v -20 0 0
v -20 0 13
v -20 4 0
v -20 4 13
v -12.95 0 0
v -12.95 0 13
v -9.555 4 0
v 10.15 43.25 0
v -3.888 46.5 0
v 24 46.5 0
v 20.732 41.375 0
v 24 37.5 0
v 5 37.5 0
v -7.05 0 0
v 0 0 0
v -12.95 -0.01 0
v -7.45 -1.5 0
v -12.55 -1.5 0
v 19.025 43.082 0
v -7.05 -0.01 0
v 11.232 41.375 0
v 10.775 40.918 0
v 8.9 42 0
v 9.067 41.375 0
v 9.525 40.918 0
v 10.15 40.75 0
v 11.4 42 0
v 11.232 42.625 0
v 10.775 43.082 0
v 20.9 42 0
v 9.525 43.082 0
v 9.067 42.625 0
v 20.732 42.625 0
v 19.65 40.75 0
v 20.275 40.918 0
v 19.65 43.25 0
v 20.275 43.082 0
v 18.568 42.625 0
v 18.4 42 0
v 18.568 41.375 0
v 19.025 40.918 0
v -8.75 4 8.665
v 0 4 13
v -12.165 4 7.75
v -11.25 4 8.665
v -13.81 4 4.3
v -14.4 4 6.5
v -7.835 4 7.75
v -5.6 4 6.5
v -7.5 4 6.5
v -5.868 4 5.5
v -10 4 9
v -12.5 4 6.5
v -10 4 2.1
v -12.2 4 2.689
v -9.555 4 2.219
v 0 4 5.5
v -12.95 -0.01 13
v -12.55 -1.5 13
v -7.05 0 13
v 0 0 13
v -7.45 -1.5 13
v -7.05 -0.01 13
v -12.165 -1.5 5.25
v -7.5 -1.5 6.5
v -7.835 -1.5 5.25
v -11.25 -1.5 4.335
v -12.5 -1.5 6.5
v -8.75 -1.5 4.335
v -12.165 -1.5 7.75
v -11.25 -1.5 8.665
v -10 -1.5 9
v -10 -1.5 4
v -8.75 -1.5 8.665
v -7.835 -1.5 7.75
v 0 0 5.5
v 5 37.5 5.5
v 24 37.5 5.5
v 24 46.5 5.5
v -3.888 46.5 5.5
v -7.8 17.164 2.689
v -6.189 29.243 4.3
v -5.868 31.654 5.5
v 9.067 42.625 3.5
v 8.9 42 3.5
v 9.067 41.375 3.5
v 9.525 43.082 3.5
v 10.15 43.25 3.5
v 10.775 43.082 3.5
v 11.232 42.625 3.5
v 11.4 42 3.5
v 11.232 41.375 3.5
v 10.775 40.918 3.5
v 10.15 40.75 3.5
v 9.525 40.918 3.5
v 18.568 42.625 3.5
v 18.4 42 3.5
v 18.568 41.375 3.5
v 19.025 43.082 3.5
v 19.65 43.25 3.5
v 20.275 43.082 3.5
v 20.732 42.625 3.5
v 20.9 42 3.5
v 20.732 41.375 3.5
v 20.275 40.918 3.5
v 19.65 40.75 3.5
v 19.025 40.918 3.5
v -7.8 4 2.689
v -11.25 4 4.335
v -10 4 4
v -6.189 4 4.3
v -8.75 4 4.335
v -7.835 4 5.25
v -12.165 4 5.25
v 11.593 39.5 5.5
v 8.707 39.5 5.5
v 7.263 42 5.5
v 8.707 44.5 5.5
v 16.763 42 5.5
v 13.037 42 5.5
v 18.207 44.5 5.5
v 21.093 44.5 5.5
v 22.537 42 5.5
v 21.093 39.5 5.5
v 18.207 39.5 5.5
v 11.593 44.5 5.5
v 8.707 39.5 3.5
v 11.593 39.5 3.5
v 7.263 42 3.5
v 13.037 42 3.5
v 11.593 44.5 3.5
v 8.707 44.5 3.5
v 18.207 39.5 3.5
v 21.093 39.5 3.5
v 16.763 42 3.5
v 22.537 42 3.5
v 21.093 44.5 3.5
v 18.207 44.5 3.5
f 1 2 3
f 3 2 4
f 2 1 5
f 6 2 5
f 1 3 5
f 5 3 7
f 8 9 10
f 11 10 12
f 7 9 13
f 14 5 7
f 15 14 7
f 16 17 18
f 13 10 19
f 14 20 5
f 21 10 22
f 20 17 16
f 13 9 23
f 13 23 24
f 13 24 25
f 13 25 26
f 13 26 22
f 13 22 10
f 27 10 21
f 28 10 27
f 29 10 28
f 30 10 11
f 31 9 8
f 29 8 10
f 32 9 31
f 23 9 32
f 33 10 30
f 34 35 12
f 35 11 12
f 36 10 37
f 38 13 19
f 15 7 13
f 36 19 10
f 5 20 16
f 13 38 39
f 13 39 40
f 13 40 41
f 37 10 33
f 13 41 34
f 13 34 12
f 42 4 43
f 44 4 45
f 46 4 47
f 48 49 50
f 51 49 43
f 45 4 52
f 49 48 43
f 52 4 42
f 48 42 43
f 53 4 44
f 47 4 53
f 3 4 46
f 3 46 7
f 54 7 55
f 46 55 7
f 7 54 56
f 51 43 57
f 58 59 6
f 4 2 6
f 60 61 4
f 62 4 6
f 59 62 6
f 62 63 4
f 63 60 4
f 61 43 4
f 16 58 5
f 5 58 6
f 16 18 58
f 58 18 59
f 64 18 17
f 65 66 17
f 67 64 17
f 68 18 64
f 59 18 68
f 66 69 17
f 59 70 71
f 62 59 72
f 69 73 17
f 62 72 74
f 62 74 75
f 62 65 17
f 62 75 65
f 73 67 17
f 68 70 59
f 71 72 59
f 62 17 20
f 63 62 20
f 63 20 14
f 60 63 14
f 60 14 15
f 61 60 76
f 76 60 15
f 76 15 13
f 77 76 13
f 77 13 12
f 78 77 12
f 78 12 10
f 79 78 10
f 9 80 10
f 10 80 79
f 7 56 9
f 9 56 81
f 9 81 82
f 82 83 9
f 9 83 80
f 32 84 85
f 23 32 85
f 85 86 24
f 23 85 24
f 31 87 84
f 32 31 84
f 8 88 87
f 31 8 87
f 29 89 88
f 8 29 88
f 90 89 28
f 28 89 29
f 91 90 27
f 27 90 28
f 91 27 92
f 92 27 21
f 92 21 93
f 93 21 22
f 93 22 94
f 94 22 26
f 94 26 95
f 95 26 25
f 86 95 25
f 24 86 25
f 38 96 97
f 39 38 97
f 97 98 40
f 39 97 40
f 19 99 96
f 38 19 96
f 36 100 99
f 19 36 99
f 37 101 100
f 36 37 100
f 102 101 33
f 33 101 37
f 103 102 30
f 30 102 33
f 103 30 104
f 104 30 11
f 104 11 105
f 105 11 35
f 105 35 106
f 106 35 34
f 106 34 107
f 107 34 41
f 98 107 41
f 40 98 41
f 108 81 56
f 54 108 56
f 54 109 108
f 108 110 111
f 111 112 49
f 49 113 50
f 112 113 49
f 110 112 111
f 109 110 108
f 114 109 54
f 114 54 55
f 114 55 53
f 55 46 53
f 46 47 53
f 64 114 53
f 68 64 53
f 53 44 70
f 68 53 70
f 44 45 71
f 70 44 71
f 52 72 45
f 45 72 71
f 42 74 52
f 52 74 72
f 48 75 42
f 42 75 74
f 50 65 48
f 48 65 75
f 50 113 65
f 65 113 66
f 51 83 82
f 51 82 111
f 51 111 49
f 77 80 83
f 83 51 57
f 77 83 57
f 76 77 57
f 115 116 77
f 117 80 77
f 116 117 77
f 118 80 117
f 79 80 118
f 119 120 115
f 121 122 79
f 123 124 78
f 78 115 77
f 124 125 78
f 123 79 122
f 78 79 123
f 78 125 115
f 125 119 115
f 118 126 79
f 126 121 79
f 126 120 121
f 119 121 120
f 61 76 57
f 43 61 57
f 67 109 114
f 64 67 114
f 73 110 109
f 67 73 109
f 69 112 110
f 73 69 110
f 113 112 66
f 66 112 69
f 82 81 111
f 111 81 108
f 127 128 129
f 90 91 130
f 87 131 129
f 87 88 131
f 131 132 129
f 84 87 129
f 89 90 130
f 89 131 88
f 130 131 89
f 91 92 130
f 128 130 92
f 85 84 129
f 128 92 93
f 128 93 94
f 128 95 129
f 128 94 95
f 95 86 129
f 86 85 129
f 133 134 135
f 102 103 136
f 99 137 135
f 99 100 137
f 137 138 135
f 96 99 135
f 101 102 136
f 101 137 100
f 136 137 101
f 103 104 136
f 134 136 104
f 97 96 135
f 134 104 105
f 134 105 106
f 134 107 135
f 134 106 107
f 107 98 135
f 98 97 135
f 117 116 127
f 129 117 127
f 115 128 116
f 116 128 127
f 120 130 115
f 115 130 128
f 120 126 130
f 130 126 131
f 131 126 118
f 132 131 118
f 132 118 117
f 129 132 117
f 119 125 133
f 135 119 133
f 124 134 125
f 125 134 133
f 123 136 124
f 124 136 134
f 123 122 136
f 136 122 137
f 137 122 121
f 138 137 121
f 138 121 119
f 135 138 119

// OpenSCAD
// file: ss_3gl13p.scad
//SS-3GL13P microswitch

//the real lever has a bump that isn't depicted here, but the tip of the lever here is where the tip of the bump is on the real switch when the operating point is reached

module ss_3gl13p(){
		difference(){
			union(){
				color("black")
				translate([0,-3.3,0]) cube([19.8,7.7+3.3,6.4]);
				color("silver")
				translate([5.15+15.8,10.7,0]) rotate([0,0,-170]) cube([20,1,6.4]);
			}
			translate([5.15,0,0])
			cylinder(r=2.3/2, h=100, center=true);
			translate([5.15+9.5,0,0])
			cylinder(r=2.3/2, h=100, center=true);
		}
	}

}
// main file
use<ss_3gl13p.scad>



module nut(w, h){
	translate([0,0,h/2])
	for (i=[1:3])
		rotate([0,0,60*i])
		cube([w, w/sqrt(3), h], center=true);

}

module	zendstop(color="blue", switch=0){
$fn=12;

switch_offset_side=5;
switch_offset_height=23+15+27-16-7;

thickness=4;
extrusion_pad_width=13;
extrusion_pad_ridge_depth=1.5;
extrusion_pad_ridge_width=5.9;

strut_thickness=10;
strut_width=5.5;

switch_backing_width=19;
switch_backing_height=9;

switch_hole_dia=2.5;
nuttrap_depth = 2;
nuttrap_flats = 5;

	if(switch)
		translate([switch_offset_side,switch_offset_height,strut_width])
		ss_3gl13p();

	color(color)
	translate([-20/2, 0, 0])
	difference(){
		union(){
			translate([-20/2, 0, 0])
			cube([20, thickness, extrusion_pad_width]);

			hull(){
				translate([-extrusion_pad_ridge_width/2, -.01, 0])
				cube([extrusion_pad_ridge_width, .02, extrusion_pad_width]);

				translate([-(extrusion_pad_ridge_width-.8)/2, -extrusion_pad_ridge_depth, 0])
				cube([extrusion_pad_ridge_width-.8, 2*extrusion_pad_ridge_depth, extrusion_pad_width]);
			}
			intersection(){
				translate([20/2, 0, 0])
				rotate([0,0,atan2(switch_offset_height-switch_backing_height/2, switch_offset_side)])
				translate([-500, 0, 0])
				cube([1000, strut_thickness, strut_width]);

				translate([-20/2, 0, 0])
				cube([20+switch_offset_side, switch_offset_height+switch_backing_height/2, strut_width]);
			}

			translate([20/2+switch_offset_side, switch_offset_height-switch_backing_height/2, 0])
			cube([switch_backing_width, switch_backing_height, strut_width]);
		}
		translate([0, 0, extrusion_pad_width/2])
		rotate([90,0,0]){
			cylinder(r=5/2, h=thickness*3, center=true);
			translate([0,0,-thickness-1000])
			cylinder(r=8.4/2+.2, h=1000);
		}
		for (q=[switch_offset_side+5.15,switch_offset_side+5.15+9.5])
		translate([20/2+q, switch_offset_height, 0])
		rotate([0,0,90]){
			cylinder(r=switch_hole_dia/2, h=strut_width*3, center=true);

			translate([0, 0, strut_width-nuttrap_depth])
			nut(w=nuttrap_flats, h=nuttrap_depth+1);
		}
	}

}

zendstop();
